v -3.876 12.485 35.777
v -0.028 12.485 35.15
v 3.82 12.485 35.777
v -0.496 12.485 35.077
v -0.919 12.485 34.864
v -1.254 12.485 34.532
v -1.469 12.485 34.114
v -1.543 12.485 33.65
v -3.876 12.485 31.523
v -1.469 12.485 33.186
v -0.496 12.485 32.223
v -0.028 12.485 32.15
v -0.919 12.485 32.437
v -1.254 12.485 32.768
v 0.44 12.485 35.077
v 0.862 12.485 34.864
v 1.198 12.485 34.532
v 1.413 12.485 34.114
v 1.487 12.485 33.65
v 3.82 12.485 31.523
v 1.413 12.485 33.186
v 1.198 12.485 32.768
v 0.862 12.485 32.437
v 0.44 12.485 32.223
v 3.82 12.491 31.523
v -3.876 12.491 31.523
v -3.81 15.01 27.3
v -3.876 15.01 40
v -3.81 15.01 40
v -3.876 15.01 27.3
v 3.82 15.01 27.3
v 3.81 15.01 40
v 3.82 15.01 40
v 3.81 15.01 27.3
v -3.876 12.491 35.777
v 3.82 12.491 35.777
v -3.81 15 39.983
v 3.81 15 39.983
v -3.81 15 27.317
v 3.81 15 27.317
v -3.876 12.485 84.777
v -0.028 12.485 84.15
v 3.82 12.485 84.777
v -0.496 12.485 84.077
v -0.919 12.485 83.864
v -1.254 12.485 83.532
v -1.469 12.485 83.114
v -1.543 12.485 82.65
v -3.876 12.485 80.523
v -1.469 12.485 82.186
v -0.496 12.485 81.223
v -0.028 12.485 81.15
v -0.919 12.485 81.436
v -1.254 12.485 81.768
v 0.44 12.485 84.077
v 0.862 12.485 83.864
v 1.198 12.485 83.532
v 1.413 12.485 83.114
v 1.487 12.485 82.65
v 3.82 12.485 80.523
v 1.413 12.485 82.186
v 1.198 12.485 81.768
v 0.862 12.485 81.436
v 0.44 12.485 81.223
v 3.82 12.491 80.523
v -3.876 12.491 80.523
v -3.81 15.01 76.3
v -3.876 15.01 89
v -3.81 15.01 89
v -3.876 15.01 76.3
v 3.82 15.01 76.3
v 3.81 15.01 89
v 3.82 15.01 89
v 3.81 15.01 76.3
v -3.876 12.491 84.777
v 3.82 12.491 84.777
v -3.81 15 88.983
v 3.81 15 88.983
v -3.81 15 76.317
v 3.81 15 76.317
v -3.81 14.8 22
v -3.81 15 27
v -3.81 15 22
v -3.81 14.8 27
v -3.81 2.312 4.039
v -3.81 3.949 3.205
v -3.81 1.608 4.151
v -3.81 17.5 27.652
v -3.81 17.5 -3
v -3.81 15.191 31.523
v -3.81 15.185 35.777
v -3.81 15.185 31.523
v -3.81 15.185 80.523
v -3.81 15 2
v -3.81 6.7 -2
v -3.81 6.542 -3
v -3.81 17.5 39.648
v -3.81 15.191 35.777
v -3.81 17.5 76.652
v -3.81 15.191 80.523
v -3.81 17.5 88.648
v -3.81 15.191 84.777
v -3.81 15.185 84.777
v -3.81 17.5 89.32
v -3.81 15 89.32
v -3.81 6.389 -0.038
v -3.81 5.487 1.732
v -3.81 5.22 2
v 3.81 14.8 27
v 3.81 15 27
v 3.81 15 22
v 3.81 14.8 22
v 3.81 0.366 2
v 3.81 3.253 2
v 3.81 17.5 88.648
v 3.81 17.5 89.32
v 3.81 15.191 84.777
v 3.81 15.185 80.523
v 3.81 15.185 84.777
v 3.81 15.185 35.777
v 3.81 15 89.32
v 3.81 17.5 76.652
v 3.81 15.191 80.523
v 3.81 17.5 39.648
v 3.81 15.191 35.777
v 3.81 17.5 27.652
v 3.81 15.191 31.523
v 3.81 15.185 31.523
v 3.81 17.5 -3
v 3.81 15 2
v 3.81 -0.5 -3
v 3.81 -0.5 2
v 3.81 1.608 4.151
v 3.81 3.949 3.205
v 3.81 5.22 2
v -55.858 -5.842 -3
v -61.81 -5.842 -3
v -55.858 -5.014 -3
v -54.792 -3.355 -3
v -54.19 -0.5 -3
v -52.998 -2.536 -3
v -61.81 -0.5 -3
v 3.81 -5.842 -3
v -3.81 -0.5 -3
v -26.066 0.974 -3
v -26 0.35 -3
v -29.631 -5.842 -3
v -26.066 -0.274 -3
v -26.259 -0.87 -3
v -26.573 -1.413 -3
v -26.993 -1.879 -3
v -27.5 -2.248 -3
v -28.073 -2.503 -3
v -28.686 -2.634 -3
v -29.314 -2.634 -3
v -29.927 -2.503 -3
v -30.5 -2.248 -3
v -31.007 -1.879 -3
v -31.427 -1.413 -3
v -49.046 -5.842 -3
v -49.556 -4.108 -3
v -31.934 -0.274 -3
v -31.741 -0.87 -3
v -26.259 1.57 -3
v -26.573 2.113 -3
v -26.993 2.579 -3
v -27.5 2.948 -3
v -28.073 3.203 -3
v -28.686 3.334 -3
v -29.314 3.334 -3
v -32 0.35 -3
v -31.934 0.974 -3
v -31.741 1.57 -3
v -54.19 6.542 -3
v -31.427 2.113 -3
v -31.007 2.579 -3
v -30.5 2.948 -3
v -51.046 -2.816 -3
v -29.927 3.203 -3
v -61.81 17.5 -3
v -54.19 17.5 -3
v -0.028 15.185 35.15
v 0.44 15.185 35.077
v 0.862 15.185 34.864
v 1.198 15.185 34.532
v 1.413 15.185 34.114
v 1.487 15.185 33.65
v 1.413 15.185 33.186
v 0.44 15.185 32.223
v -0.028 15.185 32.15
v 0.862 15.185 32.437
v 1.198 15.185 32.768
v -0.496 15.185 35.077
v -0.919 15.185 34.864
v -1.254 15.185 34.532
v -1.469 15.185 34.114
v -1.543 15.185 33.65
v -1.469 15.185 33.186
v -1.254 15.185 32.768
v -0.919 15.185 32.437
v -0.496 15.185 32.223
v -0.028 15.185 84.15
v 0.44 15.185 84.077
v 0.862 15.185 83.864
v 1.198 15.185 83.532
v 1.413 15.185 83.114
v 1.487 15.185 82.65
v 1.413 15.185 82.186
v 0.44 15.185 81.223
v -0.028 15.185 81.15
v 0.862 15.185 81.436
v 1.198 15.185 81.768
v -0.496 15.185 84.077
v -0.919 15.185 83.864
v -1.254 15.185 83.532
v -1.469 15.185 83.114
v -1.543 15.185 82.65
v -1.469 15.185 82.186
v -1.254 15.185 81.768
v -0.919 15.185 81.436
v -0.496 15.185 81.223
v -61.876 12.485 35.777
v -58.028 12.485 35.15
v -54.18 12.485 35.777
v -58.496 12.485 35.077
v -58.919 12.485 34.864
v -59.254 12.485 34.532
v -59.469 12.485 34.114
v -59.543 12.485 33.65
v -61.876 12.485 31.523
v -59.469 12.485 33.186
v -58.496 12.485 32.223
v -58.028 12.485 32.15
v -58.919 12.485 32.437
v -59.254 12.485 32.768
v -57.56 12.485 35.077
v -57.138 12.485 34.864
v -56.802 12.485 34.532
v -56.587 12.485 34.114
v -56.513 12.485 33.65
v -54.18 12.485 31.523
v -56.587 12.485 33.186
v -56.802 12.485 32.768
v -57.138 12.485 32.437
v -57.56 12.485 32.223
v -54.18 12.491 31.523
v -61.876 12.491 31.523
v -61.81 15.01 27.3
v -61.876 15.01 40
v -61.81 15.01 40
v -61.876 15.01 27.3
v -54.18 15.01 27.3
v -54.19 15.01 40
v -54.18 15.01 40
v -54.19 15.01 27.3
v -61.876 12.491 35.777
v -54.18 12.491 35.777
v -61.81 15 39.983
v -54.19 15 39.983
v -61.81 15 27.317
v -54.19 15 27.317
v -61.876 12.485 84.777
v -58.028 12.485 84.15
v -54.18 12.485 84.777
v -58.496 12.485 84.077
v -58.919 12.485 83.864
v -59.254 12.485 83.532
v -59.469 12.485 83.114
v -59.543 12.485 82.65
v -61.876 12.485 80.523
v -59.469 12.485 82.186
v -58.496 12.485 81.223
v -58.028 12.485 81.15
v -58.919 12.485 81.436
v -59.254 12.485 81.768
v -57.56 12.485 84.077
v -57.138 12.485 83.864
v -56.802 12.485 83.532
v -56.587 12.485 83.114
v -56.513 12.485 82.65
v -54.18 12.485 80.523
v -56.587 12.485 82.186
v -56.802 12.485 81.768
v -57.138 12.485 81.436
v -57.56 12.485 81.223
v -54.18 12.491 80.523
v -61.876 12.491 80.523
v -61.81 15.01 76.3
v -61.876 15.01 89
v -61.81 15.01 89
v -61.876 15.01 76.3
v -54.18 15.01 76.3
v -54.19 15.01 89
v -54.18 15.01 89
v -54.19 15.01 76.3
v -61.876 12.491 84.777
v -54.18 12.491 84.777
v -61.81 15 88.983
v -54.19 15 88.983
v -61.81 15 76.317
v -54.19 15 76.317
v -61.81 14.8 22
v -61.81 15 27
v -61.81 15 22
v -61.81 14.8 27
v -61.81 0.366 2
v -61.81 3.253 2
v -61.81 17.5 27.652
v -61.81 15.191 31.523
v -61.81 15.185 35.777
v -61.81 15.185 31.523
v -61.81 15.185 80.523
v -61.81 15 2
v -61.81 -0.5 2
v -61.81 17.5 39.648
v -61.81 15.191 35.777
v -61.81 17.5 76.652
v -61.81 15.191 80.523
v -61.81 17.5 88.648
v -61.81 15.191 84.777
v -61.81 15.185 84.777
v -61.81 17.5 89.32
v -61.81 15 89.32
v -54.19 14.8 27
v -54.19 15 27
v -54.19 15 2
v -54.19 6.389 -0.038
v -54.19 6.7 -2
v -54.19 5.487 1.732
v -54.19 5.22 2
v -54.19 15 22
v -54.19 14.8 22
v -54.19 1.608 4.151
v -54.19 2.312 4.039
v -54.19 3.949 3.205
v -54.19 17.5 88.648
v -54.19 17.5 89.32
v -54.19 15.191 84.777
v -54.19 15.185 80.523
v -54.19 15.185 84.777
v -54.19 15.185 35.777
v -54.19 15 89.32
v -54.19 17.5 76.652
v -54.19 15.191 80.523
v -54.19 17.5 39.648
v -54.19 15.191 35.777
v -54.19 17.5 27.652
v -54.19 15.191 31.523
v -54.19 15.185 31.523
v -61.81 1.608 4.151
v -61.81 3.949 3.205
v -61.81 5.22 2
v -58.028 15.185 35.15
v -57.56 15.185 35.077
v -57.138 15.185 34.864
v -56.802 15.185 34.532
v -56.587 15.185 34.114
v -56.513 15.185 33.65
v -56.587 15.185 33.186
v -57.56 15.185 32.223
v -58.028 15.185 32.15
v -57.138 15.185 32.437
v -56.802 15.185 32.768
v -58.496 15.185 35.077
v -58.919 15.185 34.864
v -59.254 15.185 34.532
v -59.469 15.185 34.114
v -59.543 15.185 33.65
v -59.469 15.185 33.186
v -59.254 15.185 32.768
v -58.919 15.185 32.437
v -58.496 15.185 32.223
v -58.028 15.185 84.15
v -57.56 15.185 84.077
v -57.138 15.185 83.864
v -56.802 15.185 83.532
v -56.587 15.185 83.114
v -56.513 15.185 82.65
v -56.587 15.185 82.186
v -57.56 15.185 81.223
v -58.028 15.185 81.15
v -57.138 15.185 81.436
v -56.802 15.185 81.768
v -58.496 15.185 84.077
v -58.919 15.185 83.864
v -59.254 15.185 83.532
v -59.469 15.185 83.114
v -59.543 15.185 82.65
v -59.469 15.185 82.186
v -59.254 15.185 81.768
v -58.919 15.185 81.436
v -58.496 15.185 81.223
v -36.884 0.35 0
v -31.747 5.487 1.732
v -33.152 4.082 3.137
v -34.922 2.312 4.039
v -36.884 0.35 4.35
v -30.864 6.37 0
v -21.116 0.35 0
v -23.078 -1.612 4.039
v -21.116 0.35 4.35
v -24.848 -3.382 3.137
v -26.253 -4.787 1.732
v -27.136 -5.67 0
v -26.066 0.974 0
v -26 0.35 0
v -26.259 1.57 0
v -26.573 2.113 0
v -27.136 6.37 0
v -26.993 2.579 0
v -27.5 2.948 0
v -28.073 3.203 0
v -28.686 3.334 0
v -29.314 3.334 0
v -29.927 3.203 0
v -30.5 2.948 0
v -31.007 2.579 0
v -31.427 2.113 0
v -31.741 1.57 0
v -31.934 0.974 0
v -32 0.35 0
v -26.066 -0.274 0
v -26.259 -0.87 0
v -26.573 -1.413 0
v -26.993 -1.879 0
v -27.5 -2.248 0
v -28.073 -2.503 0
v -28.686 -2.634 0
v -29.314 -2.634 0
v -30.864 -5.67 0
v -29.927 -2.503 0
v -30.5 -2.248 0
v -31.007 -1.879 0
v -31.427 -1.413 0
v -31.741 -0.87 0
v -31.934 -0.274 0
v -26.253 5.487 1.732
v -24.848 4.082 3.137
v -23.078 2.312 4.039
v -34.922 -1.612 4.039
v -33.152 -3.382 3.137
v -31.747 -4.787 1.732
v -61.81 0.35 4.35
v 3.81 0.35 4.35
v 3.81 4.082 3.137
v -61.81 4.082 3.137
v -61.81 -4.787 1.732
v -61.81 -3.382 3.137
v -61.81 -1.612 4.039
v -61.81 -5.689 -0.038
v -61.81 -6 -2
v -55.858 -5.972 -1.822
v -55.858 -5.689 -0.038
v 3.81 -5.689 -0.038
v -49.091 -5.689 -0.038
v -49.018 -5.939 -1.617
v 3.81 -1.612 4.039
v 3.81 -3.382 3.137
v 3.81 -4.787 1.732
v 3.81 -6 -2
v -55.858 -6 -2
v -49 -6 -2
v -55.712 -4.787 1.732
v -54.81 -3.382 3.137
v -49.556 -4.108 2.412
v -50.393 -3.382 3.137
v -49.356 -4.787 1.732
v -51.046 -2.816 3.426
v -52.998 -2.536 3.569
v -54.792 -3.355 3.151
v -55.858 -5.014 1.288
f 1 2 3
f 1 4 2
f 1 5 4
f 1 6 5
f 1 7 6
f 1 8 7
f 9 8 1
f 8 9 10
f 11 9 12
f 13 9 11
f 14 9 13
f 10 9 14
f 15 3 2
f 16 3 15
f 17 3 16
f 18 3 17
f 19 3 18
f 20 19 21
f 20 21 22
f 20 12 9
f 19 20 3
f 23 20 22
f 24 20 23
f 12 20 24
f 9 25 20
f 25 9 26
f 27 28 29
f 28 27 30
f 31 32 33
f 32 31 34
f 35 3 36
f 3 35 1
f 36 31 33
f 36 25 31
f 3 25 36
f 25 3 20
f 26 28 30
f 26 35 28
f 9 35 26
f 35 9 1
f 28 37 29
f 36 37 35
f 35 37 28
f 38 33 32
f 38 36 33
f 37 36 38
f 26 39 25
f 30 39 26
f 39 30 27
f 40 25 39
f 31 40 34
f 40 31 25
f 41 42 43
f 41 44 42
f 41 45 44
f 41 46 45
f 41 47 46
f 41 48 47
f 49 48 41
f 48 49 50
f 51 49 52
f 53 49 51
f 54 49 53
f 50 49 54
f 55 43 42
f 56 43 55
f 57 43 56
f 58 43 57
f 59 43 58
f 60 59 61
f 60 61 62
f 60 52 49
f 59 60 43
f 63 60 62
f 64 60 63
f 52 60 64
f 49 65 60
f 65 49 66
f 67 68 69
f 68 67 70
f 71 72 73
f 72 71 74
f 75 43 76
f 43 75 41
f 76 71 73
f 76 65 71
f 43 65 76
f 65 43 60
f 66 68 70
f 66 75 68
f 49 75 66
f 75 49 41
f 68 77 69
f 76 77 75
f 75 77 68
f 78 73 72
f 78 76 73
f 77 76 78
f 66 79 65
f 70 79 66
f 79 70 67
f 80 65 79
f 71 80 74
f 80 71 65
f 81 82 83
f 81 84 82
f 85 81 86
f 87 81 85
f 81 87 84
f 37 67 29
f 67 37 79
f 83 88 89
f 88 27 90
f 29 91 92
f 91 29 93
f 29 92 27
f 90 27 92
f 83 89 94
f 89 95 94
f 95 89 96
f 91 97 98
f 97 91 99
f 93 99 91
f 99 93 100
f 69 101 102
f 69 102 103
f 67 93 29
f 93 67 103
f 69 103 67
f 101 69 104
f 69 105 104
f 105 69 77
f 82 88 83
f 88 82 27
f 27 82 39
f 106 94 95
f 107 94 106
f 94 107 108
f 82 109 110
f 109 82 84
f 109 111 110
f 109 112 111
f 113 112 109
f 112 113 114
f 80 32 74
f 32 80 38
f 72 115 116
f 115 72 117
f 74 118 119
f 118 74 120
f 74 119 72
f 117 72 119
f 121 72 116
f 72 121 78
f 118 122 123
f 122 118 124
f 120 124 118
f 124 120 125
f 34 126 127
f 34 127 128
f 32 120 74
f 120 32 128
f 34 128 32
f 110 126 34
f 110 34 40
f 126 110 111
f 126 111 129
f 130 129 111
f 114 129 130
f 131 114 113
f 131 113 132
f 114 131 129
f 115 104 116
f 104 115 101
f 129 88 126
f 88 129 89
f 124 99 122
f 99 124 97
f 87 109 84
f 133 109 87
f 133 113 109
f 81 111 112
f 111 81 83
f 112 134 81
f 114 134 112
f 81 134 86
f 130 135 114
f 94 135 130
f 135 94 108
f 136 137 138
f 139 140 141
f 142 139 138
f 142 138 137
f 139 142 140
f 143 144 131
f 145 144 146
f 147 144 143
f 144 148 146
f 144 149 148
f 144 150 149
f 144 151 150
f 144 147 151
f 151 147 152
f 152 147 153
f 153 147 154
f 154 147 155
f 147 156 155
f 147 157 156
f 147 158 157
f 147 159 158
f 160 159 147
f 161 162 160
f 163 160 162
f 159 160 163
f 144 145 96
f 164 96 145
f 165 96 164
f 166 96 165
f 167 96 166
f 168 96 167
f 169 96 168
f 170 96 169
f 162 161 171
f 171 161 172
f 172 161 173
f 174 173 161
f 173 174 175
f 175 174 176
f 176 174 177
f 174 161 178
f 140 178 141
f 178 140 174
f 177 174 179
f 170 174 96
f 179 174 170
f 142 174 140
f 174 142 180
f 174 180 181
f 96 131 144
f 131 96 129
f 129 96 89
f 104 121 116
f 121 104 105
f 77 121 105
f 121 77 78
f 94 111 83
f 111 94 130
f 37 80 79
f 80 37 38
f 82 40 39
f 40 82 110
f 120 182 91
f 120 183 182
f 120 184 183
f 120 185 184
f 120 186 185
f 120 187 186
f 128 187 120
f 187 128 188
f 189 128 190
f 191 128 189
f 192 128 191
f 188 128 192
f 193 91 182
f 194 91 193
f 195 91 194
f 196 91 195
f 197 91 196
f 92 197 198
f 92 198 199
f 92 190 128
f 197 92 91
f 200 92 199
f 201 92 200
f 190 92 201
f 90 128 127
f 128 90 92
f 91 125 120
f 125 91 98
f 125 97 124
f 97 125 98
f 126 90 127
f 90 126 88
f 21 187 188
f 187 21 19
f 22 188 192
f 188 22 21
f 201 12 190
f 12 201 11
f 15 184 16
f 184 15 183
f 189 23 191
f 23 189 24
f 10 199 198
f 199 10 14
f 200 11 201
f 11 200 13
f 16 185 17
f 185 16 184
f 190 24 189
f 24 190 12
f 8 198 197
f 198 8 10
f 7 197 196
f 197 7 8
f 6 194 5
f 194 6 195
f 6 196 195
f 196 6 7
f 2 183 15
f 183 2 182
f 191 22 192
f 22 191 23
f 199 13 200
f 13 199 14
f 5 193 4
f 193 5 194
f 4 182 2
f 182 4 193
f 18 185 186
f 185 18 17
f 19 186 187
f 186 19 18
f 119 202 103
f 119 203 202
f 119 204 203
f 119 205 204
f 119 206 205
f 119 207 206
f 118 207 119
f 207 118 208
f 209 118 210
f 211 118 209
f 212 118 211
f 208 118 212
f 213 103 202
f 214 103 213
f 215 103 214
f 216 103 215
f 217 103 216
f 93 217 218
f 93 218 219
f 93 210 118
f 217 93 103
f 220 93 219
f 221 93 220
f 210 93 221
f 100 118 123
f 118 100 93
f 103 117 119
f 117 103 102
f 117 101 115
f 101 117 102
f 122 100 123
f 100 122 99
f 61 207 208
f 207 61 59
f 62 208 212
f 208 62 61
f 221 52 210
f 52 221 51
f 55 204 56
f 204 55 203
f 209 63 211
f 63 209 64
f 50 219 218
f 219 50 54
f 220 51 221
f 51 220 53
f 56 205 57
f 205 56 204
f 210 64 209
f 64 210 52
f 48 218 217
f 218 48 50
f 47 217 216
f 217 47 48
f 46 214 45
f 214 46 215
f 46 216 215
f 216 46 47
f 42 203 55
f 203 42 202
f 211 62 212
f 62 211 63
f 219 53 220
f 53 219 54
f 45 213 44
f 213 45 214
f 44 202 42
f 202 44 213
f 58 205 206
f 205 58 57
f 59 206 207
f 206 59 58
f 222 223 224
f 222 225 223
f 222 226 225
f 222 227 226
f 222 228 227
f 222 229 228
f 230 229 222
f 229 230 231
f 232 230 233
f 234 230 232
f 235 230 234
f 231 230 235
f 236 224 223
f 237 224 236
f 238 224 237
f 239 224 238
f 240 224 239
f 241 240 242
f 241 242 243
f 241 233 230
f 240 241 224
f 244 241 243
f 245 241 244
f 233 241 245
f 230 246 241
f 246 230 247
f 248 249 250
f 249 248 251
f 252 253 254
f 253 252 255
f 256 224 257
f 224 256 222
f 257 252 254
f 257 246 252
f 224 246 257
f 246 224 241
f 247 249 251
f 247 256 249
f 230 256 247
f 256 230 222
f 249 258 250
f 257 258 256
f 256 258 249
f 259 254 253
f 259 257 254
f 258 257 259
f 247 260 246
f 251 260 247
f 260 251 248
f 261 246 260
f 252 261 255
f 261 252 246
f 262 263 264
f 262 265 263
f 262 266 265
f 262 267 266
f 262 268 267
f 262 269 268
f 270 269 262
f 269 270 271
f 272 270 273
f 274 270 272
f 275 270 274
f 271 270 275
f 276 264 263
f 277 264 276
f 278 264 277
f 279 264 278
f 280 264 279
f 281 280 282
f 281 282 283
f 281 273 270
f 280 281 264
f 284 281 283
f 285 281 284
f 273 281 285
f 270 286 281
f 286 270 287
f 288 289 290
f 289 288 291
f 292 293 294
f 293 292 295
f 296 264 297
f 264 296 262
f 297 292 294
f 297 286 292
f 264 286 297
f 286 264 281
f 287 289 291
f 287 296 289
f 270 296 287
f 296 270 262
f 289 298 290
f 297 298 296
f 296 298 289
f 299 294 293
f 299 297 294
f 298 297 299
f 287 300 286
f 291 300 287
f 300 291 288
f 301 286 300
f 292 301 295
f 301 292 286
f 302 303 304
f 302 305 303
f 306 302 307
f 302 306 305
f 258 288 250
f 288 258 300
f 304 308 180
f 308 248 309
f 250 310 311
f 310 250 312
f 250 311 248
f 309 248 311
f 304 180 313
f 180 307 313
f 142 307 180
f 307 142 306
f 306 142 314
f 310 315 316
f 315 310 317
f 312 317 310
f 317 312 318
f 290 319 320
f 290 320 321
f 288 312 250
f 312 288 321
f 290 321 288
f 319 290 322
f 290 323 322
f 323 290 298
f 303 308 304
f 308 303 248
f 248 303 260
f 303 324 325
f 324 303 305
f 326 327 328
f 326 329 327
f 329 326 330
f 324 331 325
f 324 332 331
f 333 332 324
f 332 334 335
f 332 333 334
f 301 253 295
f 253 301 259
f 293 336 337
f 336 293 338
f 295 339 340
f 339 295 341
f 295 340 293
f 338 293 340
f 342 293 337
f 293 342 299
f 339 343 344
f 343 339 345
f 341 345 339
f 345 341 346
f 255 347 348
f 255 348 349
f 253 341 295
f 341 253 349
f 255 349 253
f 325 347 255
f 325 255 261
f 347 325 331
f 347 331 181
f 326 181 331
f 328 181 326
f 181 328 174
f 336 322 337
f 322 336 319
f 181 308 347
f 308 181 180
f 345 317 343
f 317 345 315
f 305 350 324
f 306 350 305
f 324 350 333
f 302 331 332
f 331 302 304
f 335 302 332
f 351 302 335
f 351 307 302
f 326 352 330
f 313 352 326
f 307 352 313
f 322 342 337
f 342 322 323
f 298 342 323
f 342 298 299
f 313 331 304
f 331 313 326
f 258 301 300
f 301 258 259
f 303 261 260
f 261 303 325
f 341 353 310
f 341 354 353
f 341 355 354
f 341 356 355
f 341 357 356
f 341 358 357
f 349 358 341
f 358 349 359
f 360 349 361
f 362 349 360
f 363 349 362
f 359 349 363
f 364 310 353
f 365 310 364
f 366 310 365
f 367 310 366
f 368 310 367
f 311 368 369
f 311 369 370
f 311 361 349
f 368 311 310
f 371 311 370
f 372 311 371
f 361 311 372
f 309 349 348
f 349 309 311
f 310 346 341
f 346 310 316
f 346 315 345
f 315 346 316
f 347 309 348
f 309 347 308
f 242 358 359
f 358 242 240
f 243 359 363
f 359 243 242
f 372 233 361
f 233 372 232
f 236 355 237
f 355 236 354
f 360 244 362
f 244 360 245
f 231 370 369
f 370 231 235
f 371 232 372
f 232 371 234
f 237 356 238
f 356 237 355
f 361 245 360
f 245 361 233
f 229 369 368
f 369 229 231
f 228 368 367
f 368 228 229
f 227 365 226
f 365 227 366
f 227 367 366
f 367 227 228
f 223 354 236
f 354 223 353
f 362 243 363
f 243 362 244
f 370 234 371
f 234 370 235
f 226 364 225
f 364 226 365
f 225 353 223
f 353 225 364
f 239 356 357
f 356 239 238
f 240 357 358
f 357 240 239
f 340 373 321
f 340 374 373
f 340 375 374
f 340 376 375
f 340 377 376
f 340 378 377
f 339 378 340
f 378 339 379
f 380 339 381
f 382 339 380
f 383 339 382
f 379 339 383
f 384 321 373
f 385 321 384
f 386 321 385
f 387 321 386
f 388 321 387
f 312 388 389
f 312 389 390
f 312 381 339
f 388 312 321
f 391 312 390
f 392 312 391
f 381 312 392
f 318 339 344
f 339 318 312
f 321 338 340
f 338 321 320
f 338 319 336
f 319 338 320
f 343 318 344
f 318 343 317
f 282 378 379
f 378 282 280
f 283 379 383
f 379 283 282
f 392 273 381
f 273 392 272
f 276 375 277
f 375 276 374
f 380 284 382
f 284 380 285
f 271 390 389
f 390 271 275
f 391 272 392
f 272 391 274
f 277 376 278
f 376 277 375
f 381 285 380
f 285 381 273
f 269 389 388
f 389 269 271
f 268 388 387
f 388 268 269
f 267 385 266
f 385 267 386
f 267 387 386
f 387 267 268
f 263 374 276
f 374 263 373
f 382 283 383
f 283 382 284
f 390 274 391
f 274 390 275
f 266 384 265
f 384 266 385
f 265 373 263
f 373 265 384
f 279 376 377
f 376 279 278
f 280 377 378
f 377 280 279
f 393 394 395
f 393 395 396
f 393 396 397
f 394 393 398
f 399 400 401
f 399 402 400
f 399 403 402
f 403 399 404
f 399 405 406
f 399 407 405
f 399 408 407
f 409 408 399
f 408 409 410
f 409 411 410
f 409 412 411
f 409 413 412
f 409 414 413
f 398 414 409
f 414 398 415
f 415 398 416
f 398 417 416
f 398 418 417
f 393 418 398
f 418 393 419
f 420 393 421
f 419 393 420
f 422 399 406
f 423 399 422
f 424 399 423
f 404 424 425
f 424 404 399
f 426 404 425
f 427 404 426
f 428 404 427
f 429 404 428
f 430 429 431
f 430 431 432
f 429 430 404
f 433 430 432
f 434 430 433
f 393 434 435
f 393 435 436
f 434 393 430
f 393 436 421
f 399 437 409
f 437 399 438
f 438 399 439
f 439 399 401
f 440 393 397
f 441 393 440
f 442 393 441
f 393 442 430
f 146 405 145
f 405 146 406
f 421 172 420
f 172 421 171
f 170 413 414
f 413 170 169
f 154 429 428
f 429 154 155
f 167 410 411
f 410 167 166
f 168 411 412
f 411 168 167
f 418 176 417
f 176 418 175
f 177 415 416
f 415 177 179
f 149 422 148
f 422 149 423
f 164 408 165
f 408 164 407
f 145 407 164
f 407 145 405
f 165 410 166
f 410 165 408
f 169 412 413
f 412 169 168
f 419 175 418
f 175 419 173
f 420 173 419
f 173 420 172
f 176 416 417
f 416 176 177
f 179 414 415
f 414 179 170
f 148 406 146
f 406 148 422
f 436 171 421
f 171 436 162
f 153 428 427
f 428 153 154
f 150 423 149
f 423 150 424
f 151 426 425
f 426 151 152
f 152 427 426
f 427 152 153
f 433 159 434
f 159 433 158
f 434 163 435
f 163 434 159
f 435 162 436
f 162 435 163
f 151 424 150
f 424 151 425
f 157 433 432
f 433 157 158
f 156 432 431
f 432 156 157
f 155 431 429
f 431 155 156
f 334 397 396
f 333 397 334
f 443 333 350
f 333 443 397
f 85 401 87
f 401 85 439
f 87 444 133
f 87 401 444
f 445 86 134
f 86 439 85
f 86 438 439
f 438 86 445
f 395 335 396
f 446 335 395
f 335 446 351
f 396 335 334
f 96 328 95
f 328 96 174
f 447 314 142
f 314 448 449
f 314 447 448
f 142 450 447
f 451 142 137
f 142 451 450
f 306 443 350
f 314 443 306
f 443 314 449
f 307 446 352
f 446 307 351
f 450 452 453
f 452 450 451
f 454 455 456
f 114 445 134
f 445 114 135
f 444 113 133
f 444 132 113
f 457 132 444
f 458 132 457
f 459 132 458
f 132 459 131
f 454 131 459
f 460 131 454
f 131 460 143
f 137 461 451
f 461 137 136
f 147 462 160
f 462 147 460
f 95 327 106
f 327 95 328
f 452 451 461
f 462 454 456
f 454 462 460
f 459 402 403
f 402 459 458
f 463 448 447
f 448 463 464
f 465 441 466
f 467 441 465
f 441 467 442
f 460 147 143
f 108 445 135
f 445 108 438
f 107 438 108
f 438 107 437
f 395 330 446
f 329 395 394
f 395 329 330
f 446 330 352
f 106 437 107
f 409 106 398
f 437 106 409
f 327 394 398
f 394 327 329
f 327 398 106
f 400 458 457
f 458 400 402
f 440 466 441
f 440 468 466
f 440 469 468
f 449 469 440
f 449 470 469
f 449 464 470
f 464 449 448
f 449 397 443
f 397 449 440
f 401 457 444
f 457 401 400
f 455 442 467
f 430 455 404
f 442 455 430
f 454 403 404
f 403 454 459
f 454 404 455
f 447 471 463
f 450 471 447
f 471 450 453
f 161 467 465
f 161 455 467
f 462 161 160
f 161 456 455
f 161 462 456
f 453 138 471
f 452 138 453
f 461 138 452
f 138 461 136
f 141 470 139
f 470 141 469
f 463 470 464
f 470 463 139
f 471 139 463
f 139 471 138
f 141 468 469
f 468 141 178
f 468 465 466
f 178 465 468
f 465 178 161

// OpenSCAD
inch=25.4;

baselength=3*inch;
basewidth = .5*inch;
baseheight = .3*inch;
standheight = 3.2 * inch;
railsep = 58;

tripod_mount_width = 100;

screw_radius=4/2;
screwsep = 49;
mountdepth=2.5;
mountheight=.5*inch;
mountscrewlength=6 + 6;

module square(w=11.15, screw=6){
  r = w * sqrt(2)/2;
  linear_extrude(h=100){
    polygon(points=[
		    [r * cos(0*90), r * sin(0*90)],
		    [r * cos(1*90), r * sin(1*90)],
		    [r * cos(2*90), r * sin(2*90)],
		    [r * cos(3*90), r * sin(3*90)],
		    ],
	    paths=[[0, 1, 2, 3, 4, 5]]);
	    
  }
  translate([0, 0, -20])cylinder(d=screw, h=20, $fn=30);
}

module quarter_round(radius, length){
  intersection(){
    cylinder(r=radius, h=length);
    cube([radius, radius, length]);
  }
}


module hex(w=8, screw=4){
  r = w * sqrt(3)/4;
  linear_extrude(h=100){
    polygon(points=[
		    [r * cos(0*60), r * sin(0*60)],
		    [r * cos(1*60), r * sin(1*60)],
		    [r * cos(2*60), r * sin(2*60)],
		    [r * cos(3*60), r * sin(3*60)],
		    [r * cos(4*60), r * sin(4*60)],
		    [r * cos(5*60), r * sin(5*60)]
		    ],
	    paths=[[0, 1, 2, 3, 4, 5]]);
	    
  }
  translate([0, 0, -20])cylinder(d=screw, h=20, $fn=30);
}

module square(w=11.15, screw=6){
  r = w * sqrt(2)/2;
  linear_extrude(h=100){
    polygon(points=[
		    [r * cos(0*90), r * sin(0*90)],
		    [r * cos(1*90), r * sin(1*90)],
		    [r * cos(2*90), r * sin(2*90)],
		    [r * cos(3*90), r * sin(3*90)],
		    ],
	    paths=[[0, 1, 2, 3]]);
	    
  }
  translate([0, 0, -20])cylinder(d=screw, h=20, $fn=30);
}

//rotate(a=90, v=[1, 0, 0])hex();
module mount(screw=true){
  translate([.01, mountdepth + .01, 0])scale([1.01, 1.01, 1])
  rotate(a=180, v=[1, 0, 0])
    union(){
    translate([0, 0, mountheight/3])rotate(v=[0, 0, 1], a=90)translate([0, 0, -0.01])cube([mountdepth, baseheight, mountheight/3+.02]);
    rotate(v=[0,1,0], a=-90)linear_extrude(height=baseheight)
      polygon(points=[
		      [0, 0],
		      [mountheight/3, mountdepth],
		      [mountheight/3, 0],
		      ], paths=[[0, 1, 2]]);
    translate([-baseheight, 0, mountheight])rotate(v=[0,1,0], a=90)linear_extrude(height=baseheight)
      polygon(points=[
		      [0, 0],
		      [mountheight/3, mountdepth],
		      [mountheight/3, 0],
		      ], paths=[[0, 1, 2]]);

    if(screw){
    translate([-baseheight/2, mountscrewlength, mountheight/2])rotate(v=[1, 0, 0], a=90)union(){
      cylinder(h=mountscrewlength, d=3, $fn=20);
    }
    }
  }
}

module rail(){
  translate([-baseheight/2, 5, 20])
  difference(){
    union(){
      translate([baseheight, 10-mountdepth, 20])mount(screw=false);
      translate([baseheight, 10-mountdepth, 20 + screwsep])mount(screw=false);
      translate([0, -5.5, -23])cube([baseheight, 18, 5]); 

      //translate([baseheight, basewidth, standheight - baseheight*1.5])
      //rotate(v=[0, 0, -1], a=90)
      //rotate(v=[1, 0, 0], a=90)
	//quarter_round(radius=basewidth, length=baseheight);
      translate([0, 10, -20])
	cube([baseheight, mountdepth, screwsep + .8*inch + 20]);
      translate([0, -5.5, -3-20])
	difference()
	{
	  intersection(){
	    cube([baseheight, 18, 30]);
	    translate([0, 0, 3.5])
	      rotate(a=30, v=[-1, 0, 0])
	      cube([baseheight, 18, 50]);
	  }
	  translate([0,0, -5])intersection(){
	    cube([baseheight, 18, 30]);
	    translate([0, 0, 3.5])
	      rotate(a=30, v=[-1, 0, 0])
	      cube([baseheight, 18, 50]); 
	  }
	}
    }
    union(){
      translate([baseheight, basewidth-mountdepth, 20])mount();
      translate([baseheight, basewidth-mountdepth, 20 + screwsep])mount();
    }
  }
}
module top(){
  difference(){
    union(){
      translate([-railsep/2, -basewidth/2, 0])rail();
      // translate([railsep/2, -basewidth/2, 0])rail();
    }
    union(){
      rotate(v=[1, 0, 0], a=90)bottom();
      rotate(v=[1, 0, 0], a=-90)bottom();
    }
  }
}

module bottom_attach(){
  translate([baseheight/10 - 2 * baseheight/5, 0, 0])rotate(v=[0, 1, 0], a=90)cylinder(h=baseheight/5, r=basewidth/2);
  translate([baseheight/10 + 0 * baseheight/5, 0, 0])rotate(v=[0, 1, 0], a=90)cylinder(h=baseheight/5, r=basewidth/2);

  translate([baseheight/10 - 2 * baseheight/5, -basewidth/2, -basewidth * .6])cube([baseheight/5, basewidth, basewidth * .6]);
  translate([baseheight/10 + 0 * baseheight/5, -basewidth/2, -basewidth * .6])cube([baseheight/5, basewidth, basewidth * .6]);
}
module handle(){
  extra = 0; // extra width for base
  base_d = railsep + baseheight;
  translate([-baselength * .0 + basewidth*0, 0, -.5 * baseheight])
    scale([1, 1, .4])translate([0, basewidth/2, 0])
    rotate(v=[1, 0, 0], a=90)
    difference(){
    translate([0, 0, -extra])cylinder(r=base_d/2, h=basewidth + 3 * extra);
    translate([0, 0, -1-extra])cylinder(r=base_d/2 - 5 * baseheight/5, h=basewidth + 2+2 * extra);
    translate([-50, 0, -1-extra])cube(100, 100, 10);
  }
}

module bottom(){
  difference(){
    union(){
      translate([-railsep/2, 0, 0])bottom_attach();
      translate([+railsep/2, 0, 0])bottom_attach();
      handle();
    }
    translate([0, 0, -20])square();
  }
}

/*
rotate(v=[1, 0, 0], a=-90)
difference(){
  union(){
    top();
    bottom();
  }
  translate([-50, 0, 0])rotate(v=[0, 1, 0], a=90)cylinder(h=100, r=screw_radius, $fn=100);
}
*/
difference(){
union(){
  rail();
  translate([-railsep, 0, 0]) rail();
  difference(){
    scale([1, 1, 1])
      translate([baseheight/2, basewidth/2-6, -2])
      rotate(v=[0, 1, 0], a=-90)
      cylinder(h=railsep + baseheight, r=basewidth/2);
    translate([-railsep/2, basewidth/2-6, 0])
      square();
    translate([-tripod_mount_width/2 - railsep/2, -10, -13])
      cube([tripod_mount_width, 50, 10]);
  }
}
translate([-52.5,-6,-10])cylinder(d=7,h=20);
}
